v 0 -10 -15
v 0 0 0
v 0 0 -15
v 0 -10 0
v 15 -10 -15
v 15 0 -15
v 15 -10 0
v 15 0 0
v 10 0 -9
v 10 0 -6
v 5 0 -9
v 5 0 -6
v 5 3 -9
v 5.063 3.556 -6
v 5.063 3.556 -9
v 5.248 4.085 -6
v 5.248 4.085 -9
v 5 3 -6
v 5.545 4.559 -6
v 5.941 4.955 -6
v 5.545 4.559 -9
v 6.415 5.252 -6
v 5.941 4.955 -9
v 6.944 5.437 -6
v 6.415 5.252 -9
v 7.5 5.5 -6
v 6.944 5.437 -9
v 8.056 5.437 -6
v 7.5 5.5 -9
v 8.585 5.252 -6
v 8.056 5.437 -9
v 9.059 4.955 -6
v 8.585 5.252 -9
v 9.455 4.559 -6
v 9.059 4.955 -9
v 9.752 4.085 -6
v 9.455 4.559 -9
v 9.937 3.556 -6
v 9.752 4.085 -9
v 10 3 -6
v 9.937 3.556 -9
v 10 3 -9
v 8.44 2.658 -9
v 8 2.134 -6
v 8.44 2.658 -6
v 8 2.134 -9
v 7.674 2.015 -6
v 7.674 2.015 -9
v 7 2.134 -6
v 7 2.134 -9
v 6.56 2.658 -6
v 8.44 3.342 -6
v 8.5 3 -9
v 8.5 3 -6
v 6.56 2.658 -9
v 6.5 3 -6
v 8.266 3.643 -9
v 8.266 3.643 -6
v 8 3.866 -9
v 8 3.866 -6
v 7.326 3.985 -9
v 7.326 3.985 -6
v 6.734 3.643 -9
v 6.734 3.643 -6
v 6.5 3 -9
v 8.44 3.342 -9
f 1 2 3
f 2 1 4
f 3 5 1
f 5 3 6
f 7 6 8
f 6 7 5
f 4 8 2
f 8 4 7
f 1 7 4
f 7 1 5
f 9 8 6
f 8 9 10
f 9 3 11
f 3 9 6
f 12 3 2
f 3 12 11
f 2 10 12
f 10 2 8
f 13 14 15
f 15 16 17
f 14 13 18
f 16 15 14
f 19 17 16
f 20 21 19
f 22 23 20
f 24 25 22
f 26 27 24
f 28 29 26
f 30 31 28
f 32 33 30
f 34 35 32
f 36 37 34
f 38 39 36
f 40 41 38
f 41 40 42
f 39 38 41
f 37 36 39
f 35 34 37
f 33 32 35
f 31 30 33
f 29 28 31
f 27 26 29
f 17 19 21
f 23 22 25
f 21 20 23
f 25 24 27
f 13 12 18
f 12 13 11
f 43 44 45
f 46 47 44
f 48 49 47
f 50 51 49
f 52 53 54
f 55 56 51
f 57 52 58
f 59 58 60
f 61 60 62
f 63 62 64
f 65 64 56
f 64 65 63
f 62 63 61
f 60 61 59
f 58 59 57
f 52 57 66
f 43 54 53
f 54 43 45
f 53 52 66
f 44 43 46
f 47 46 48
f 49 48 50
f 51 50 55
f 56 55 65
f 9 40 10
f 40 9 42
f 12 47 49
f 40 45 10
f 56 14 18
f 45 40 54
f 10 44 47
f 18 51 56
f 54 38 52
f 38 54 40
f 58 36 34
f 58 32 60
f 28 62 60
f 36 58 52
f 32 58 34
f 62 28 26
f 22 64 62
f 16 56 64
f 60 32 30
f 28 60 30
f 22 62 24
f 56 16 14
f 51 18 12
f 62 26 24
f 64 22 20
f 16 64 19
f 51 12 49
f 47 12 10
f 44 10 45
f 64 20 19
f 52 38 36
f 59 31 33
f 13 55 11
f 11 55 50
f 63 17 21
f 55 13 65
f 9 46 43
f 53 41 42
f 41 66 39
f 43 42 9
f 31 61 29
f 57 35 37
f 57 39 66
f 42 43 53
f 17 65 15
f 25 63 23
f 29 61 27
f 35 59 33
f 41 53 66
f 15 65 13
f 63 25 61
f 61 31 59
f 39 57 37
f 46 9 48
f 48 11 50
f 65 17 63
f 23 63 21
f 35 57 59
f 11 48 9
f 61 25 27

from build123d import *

# Parameters (mm, degrees)
SKETCH1_W           = 15
SKETCH1_H           = 15
BOSS_EXTRUDE1_DEPTH = 10
SKETCH4_R           = 1
BOSS_EXTRUDE2_DEPTH = 1.5


with BuildPart() as part:
    # Sketch1 → Boss-Extrude1 (new body)
    with BuildSketch(Plane.XZ):
        with Locations((7.5, -7.5)):
            Rectangle(SKETCH1_W, SKETCH1_H)
    extrude(amount=BOSS_EXTRUDE1_DEPTH)

    # Sketch4 → Boss-Extrude2 (add, symmetric)
    with BuildSketch(Plane.XY.offset(-7.5)):
        with BuildLine():
            ThreePointArc((10, 3), (7.5, 5.5), (5, 3))
            Line((5, 3), (5, 0))
            Line((5, 0), (10, 0))
            Line((10, 0), (10, 3))
        make_face()
        with Locations((7.5, 3)):
            Circle(SKETCH4_R, mode=Mode.SUBTRACT)
    extrude(amount=BOSS_EXTRUDE2_DEPTH, both=True)


solid = part.part
